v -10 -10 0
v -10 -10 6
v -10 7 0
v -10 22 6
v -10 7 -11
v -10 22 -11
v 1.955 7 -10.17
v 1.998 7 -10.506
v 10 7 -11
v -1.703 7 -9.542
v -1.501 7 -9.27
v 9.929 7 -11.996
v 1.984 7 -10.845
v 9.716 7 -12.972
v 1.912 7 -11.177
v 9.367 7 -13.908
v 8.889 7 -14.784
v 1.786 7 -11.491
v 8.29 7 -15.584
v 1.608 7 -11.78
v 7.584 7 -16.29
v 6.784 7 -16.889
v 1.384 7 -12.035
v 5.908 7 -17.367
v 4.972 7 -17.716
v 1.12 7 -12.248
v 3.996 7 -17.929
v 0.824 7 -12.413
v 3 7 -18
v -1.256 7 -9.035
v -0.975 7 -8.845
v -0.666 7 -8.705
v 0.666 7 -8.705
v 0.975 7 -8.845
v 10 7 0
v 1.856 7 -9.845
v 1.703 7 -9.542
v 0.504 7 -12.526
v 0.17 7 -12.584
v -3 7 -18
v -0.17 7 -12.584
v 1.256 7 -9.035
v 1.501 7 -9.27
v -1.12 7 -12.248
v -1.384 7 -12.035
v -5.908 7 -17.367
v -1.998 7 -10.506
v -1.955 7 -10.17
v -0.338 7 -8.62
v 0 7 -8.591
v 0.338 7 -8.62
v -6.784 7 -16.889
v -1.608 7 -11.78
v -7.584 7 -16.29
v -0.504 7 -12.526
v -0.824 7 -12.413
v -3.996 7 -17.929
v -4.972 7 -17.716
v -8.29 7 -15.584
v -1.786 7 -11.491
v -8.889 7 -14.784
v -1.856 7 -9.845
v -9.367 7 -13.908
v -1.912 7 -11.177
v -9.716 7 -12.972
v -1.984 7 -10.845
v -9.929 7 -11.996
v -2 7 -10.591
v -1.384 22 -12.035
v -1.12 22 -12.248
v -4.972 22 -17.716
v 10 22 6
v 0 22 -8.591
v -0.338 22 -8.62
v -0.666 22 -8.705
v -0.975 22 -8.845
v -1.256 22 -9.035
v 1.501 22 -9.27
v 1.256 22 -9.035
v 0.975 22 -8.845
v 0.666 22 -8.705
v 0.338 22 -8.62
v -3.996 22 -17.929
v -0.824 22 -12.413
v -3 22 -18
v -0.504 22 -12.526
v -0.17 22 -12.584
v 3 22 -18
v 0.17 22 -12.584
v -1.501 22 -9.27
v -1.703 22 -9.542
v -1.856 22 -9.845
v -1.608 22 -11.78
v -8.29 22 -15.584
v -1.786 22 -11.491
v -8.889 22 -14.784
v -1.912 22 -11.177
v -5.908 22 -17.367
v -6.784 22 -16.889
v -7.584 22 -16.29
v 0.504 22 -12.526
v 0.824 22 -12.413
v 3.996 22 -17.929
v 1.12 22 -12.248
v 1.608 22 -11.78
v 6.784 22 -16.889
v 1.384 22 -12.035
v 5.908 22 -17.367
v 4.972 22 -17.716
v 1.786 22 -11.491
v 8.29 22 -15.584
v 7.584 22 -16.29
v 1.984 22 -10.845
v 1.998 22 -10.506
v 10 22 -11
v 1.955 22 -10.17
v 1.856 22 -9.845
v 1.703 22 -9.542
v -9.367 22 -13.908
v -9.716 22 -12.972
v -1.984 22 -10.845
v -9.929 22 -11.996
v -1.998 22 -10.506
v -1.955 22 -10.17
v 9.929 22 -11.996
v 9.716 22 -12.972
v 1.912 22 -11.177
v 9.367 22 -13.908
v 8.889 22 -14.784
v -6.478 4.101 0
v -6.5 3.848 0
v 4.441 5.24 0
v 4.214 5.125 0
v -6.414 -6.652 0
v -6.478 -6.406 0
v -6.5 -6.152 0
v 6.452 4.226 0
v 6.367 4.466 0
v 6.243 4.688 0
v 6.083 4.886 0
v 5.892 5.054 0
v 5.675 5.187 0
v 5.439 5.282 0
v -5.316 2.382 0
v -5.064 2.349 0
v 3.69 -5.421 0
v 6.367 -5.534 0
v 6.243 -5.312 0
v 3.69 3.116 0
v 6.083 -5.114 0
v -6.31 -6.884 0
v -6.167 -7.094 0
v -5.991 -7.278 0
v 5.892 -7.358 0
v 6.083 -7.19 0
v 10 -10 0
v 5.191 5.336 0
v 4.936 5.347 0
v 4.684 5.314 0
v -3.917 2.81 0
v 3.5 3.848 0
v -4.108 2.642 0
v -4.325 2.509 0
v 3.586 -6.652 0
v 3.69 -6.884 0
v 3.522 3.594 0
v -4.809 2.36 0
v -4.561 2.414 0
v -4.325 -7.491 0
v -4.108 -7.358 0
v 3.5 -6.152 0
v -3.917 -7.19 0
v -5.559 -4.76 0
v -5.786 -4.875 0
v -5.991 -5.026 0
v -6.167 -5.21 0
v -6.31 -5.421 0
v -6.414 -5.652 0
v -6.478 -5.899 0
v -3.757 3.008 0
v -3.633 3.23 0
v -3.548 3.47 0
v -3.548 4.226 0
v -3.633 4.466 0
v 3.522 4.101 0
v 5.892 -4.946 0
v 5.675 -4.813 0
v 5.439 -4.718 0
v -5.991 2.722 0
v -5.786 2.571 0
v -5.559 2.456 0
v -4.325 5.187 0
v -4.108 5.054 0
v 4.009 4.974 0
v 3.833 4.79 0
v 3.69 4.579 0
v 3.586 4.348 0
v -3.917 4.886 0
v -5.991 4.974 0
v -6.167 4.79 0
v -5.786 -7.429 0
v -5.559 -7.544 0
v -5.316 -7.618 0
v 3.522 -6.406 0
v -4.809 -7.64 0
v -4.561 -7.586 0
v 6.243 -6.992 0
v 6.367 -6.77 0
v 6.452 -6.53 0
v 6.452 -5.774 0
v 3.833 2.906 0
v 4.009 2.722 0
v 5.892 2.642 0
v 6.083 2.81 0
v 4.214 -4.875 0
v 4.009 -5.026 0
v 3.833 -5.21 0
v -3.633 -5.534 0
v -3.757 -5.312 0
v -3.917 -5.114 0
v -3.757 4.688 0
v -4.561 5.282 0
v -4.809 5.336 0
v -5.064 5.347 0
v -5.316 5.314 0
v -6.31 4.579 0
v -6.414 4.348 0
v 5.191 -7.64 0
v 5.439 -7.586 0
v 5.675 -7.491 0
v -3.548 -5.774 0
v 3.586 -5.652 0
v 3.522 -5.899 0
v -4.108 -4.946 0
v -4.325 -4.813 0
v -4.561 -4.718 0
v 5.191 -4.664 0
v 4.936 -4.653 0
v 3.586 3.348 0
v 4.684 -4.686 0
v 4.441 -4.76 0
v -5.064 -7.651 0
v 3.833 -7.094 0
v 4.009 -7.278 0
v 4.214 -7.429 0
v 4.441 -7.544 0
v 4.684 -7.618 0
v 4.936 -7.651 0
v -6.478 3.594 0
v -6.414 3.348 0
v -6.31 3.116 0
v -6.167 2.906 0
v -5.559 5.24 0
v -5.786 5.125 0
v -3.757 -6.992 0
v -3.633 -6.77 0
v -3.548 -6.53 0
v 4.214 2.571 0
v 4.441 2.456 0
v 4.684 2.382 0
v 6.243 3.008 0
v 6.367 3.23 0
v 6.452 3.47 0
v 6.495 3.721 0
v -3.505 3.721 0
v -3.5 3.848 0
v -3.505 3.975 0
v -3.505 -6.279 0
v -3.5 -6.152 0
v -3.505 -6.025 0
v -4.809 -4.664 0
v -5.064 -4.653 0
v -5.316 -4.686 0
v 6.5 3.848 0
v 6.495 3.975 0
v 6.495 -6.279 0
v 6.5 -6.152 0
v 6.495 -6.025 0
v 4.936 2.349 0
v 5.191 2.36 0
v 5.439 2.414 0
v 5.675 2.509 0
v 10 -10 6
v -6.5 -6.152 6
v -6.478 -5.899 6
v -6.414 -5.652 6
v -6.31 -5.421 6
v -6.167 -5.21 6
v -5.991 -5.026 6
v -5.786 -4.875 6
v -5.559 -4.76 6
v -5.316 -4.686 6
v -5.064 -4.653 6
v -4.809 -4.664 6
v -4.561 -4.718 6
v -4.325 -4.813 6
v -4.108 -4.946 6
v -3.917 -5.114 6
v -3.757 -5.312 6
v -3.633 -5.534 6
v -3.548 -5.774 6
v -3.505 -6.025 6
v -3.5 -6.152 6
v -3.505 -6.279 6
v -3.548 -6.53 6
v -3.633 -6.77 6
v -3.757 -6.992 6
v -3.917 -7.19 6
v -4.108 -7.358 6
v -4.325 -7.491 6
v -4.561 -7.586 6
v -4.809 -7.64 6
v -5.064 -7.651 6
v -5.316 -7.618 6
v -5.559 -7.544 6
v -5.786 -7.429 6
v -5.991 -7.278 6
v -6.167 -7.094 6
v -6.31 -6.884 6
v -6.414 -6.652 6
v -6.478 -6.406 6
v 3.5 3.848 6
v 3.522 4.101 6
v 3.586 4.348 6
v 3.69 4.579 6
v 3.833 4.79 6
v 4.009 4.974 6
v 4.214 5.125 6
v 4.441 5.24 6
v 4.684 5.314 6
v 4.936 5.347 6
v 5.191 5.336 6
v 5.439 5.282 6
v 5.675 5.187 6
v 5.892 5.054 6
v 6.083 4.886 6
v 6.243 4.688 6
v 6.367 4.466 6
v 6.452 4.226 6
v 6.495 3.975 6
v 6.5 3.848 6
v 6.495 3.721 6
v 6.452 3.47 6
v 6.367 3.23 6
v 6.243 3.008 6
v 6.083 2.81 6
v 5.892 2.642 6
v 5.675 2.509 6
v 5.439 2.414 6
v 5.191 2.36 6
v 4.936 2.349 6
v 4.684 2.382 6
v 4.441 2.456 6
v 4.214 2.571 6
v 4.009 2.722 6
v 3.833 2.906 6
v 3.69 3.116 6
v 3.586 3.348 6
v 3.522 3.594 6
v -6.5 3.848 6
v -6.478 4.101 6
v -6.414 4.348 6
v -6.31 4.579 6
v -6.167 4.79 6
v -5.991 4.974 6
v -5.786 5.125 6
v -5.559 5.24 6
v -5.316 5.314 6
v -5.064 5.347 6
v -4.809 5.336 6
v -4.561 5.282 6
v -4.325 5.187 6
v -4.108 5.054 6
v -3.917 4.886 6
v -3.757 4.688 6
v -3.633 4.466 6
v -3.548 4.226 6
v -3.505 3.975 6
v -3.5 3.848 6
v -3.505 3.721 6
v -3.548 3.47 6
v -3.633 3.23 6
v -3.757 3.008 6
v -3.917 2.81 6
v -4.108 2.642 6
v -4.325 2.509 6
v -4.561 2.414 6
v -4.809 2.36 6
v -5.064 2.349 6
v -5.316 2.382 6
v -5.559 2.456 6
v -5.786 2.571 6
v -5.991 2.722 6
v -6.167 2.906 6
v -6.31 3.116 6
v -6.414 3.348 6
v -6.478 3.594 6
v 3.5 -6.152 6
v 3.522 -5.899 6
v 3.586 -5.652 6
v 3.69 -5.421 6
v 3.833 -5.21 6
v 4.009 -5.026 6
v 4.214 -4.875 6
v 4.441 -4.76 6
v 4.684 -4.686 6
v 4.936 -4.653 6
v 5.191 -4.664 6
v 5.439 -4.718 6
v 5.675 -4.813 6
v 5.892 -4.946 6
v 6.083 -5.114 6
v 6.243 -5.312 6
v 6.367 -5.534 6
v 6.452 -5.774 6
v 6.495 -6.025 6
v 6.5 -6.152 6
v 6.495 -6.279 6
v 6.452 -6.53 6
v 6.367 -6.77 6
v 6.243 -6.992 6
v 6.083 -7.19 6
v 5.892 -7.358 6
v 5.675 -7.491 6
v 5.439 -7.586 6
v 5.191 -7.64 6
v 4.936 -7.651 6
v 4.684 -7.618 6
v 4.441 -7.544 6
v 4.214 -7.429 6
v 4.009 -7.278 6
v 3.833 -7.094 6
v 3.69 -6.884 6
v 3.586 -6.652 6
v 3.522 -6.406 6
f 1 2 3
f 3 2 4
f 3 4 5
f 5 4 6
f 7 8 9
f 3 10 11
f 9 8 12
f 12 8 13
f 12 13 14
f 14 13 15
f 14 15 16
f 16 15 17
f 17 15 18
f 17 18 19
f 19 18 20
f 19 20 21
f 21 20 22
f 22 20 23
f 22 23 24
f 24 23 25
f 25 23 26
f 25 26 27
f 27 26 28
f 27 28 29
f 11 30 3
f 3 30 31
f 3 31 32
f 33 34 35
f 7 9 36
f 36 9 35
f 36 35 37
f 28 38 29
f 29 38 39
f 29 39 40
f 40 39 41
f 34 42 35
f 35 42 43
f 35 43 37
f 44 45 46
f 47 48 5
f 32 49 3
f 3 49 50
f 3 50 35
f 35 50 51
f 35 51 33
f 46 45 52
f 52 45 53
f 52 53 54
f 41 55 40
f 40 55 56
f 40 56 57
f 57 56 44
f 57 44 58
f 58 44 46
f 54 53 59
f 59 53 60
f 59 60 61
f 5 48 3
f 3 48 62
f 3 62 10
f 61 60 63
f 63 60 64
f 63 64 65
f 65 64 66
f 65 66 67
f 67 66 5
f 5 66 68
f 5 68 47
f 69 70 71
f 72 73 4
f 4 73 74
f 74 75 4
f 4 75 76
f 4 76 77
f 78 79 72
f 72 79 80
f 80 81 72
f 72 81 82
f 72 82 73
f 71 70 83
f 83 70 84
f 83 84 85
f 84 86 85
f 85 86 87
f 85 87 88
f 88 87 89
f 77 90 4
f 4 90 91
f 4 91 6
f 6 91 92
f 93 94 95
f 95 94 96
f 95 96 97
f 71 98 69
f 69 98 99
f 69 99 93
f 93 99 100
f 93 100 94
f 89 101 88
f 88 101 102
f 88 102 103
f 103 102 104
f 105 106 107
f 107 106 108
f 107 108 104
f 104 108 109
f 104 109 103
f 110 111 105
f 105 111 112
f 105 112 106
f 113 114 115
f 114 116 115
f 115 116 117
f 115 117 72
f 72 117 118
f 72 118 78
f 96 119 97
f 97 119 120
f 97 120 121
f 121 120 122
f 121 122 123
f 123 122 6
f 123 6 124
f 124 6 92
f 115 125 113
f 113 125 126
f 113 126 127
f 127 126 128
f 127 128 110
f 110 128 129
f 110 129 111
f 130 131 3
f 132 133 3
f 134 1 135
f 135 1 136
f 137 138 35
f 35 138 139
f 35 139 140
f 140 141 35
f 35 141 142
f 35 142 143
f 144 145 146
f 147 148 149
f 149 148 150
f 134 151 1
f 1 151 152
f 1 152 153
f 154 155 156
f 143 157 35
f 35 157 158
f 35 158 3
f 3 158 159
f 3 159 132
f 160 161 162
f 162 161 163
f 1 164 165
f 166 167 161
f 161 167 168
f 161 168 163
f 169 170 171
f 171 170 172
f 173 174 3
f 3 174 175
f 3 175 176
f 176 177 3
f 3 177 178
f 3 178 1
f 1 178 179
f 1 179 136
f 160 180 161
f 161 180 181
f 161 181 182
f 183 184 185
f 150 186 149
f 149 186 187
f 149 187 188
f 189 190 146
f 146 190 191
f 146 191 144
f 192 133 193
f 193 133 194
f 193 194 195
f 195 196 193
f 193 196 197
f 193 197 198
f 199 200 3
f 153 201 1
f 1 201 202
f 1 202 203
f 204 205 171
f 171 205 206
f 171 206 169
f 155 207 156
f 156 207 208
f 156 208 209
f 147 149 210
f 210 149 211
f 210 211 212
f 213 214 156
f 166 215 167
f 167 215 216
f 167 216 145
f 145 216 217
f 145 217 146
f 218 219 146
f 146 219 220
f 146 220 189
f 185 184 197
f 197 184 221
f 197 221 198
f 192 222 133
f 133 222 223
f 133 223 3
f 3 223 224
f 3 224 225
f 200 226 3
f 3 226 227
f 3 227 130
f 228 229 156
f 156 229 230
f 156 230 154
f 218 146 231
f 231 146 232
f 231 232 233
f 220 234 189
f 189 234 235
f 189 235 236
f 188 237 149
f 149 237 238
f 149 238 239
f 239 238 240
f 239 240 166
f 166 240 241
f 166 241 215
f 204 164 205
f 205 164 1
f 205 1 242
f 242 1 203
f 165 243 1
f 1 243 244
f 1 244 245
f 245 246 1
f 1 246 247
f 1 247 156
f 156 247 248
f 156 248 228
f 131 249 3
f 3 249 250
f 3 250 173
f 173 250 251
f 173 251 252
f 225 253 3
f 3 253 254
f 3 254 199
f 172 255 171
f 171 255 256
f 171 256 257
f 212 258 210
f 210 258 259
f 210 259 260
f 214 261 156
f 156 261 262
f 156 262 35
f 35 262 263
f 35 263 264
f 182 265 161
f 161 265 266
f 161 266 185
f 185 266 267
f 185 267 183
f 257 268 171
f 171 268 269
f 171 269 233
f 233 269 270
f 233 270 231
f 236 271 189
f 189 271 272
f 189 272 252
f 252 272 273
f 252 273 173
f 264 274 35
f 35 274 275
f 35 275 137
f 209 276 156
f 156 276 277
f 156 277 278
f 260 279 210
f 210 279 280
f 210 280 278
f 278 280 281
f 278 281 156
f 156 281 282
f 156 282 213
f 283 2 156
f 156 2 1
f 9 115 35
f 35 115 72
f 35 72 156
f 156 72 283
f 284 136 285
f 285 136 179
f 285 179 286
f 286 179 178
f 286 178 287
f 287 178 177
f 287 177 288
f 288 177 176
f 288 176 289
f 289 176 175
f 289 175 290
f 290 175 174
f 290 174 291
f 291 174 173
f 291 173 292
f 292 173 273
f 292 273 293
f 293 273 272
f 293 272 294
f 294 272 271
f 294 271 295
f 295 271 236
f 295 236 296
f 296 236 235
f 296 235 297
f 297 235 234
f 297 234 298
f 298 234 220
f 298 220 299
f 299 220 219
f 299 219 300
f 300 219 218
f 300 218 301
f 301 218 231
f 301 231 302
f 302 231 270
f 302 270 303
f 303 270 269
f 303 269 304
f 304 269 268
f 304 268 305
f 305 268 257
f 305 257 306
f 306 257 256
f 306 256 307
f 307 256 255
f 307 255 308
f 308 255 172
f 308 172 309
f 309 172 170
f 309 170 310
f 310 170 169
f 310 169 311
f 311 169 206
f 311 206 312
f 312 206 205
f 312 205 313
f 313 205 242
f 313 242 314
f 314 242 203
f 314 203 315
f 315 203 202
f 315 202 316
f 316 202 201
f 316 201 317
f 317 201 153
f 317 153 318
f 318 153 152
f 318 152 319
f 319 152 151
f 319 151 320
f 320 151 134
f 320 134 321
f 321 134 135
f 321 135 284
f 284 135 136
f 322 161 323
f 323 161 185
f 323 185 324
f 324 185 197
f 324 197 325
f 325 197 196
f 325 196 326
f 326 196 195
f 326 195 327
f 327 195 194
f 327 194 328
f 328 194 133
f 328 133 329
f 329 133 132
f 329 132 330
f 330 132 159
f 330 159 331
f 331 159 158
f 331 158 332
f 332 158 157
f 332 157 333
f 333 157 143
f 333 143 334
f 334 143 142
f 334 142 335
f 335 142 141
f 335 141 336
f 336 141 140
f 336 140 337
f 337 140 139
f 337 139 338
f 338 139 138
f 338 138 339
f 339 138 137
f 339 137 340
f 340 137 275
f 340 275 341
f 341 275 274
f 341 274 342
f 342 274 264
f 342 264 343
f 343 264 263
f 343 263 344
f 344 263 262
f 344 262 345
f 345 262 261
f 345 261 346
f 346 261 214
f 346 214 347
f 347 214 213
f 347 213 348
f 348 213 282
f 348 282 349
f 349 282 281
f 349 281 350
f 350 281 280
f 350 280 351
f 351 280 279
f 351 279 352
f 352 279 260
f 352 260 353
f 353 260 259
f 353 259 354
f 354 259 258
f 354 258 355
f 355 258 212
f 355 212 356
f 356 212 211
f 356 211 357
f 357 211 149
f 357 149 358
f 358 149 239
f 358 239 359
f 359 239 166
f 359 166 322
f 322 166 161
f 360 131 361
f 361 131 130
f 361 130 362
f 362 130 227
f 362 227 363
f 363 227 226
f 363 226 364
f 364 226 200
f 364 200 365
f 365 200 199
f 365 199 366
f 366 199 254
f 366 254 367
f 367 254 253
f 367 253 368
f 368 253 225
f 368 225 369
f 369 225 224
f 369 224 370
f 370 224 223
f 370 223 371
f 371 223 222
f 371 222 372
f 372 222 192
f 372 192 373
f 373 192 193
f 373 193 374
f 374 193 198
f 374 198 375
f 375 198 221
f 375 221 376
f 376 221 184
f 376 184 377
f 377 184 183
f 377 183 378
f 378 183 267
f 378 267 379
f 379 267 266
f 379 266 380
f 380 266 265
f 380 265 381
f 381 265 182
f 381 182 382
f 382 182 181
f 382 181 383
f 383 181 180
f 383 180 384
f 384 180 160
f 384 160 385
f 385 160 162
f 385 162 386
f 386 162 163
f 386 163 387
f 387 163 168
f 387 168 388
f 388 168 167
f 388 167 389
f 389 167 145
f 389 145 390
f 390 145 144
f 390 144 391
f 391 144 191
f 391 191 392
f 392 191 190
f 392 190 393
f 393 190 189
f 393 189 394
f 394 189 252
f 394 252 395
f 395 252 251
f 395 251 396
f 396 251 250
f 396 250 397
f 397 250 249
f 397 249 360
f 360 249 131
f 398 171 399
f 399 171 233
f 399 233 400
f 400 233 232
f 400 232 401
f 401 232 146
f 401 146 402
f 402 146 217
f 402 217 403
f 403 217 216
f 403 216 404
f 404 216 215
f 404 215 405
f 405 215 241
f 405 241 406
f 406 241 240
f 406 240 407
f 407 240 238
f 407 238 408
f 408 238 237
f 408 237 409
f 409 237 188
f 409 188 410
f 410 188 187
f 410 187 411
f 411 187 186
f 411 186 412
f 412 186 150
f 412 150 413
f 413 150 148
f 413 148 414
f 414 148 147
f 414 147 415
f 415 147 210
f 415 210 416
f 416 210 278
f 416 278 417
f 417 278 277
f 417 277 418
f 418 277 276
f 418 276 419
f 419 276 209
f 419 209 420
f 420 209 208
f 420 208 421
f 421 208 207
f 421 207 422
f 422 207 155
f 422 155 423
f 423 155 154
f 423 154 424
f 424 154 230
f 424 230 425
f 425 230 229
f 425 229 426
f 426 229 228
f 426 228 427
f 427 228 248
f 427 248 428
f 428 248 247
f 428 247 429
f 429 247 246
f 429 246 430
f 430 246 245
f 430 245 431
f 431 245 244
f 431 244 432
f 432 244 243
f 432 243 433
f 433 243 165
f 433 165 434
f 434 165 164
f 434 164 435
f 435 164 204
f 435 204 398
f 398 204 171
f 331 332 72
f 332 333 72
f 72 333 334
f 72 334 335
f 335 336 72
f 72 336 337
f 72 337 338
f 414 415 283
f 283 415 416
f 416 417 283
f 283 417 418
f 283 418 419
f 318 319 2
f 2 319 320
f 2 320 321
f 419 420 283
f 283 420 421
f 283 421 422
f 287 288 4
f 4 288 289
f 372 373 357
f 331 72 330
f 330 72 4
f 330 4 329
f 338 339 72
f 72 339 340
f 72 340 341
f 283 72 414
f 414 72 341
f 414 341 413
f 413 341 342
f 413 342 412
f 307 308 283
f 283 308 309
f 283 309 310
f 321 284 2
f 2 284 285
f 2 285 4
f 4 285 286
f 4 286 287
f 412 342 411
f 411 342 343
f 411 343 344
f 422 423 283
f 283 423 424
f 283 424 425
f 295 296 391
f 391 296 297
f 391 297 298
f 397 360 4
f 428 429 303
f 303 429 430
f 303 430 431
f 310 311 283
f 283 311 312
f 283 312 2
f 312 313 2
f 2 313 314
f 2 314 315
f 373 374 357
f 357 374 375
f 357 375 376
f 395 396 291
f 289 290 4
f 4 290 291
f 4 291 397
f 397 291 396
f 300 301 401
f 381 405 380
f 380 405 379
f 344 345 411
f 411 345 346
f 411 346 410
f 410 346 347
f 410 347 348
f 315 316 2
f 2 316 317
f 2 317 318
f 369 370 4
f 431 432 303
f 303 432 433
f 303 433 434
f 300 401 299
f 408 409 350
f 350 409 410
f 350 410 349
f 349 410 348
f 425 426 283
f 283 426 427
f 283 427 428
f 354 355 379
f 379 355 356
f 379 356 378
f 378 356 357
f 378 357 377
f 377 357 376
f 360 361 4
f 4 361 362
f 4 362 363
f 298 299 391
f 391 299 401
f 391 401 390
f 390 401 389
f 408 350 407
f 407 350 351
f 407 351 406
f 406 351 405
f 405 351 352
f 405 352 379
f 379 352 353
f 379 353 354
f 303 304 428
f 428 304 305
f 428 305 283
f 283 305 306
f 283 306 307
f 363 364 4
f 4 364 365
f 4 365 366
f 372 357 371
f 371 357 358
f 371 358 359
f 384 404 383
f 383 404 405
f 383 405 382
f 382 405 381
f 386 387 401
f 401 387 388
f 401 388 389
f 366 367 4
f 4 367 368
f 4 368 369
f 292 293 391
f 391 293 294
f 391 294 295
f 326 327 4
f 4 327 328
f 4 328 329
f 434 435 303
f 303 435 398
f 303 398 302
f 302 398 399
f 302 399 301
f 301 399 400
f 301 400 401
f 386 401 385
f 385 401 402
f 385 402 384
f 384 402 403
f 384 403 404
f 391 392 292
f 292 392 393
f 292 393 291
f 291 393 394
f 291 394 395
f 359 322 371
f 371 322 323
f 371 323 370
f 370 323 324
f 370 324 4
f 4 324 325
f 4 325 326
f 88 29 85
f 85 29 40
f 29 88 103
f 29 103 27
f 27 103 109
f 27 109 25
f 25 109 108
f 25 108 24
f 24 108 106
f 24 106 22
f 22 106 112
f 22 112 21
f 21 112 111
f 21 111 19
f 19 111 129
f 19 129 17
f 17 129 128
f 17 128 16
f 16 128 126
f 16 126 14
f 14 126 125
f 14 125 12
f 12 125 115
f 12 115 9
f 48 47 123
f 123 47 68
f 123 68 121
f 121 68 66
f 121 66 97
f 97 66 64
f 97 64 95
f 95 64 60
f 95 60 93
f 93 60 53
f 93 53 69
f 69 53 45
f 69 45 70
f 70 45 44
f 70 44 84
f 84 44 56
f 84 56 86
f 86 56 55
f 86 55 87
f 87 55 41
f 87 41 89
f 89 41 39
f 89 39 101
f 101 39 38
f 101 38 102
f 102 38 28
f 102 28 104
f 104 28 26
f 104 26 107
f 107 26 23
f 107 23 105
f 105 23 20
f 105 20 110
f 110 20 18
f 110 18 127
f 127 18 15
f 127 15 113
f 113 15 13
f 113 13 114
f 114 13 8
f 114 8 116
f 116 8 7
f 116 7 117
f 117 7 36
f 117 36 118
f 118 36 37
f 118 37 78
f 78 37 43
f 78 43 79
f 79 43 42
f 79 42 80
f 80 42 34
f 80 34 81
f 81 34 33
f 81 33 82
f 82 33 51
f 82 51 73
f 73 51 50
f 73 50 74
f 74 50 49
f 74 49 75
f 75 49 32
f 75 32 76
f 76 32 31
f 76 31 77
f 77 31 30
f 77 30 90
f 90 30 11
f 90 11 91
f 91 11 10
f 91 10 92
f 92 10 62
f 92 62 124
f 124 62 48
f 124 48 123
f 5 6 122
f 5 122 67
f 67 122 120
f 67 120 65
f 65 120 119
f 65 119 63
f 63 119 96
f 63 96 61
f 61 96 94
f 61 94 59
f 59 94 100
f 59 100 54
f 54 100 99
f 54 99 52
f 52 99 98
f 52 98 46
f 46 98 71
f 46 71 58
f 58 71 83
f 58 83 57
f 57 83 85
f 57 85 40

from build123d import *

# Parameters (mm, degrees)
SKETCH_1_W          = 20
SKETCH_1_H          = 20
SKETCH_1_R          = 1.5
EXTRUDE_1_DEPTH     = 6
SKETCH_2_W          = 20
SKETCH_2_H          = 3
EXTRUDE_2_DEPTH     = 18
SKETCH_3_W          = 20
SKETCH_3_H          = 24
EXTRUDE_3_DEPTH     = 12
CUT_EXTRUDE_1_DEPTH = 39.052595181


with BuildPart() as part:
    # Эскиз1 → Бобышка-Вытянуть1 (new body)
    with BuildSketch(Plane.XY):
        Rectangle(SKETCH_1_W, SKETCH_1_H)
        with Locations((-5, -6.152042824)):
            Circle(SKETCH_1_R, mode=Mode.SUBTRACT)
        with Locations((-5, 3.847957176)):
            Circle(SKETCH_1_R, mode=Mode.SUBTRACT)
        with Locations((5, 3.847957176)):
            Circle(SKETCH_1_R, mode=Mode.SUBTRACT)
        with Locations((5, -6.152042824)):
            Circle(SKETCH_1_R, mode=Mode.SUBTRACT)
    extrude(amount=EXTRUDE_1_DEPTH)

    # Эскиз2 → Бобышка-Вытянуть2 (add)
    with BuildSketch(Plane(origin=(0, 0, 0), x_dir=(-1, 0, 0), z_dir=(0, 0, -1))):
        with Locations((0, 8.5)):
            Rectangle(SKETCH_2_W, SKETCH_2_H)
    extrude(amount=EXTRUDE_2_DEPTH)

    # Эскиз3 → Бобышка-Вытянуть3 (add)
    with BuildSketch(Plane(origin=(0, 10, 0), x_dir=(1, 0, 0), z_dir=(0, 1, 0))):
        with Locations((0, 6)):
            Rectangle(SKETCH_3_W, SKETCH_3_H)
    extrude(amount=EXTRUDE_3_DEPTH)

    # Эскиз4 → Вырез-Вытянуть1 (cut, through all)
    with BuildSketch(Plane(origin=(0, 22, 0), x_dir=(1, 0, 0), z_dir=(0, 1, 0))):
        with BuildLine():
            Line((-10, 18), (-10, 11))
            ThreePointArc((-10, 11), (-7.949747468, 15.949747468), (-3, 18))
            Line((-3, 18), (-10, 18))
        make_face()
        with BuildLine():
            ThreePointArc((0, 12.591020059), (-2, 10.591020059), (0, 8.591020059))
            Line((0, 8.591020059), (0, 12.591020059))
        make_face()
        with BuildLine():
            Line((0, 12.591020059), (0, 8.591020059))
            ThreePointArc((0, 8.591020059), (1.414213562, 9.176806496), (2, 10.591020059))
            ThreePointArc((2, 10.591020059), (1.414213562, 12.005233621), (0, 12.591020059))
        make_face()
        with BuildLine():
            ThreePointArc((3, 18), (7.949747468, 15.949747468), (10, 11))
            Line((10, 11), (10, 18))
            Line((10, 18), (3, 18))
        make_face()
    extrude(amount=-CUT_EXTRUDE_1_DEPTH, mode=Mode.SUBTRACT)


solid = part.part
